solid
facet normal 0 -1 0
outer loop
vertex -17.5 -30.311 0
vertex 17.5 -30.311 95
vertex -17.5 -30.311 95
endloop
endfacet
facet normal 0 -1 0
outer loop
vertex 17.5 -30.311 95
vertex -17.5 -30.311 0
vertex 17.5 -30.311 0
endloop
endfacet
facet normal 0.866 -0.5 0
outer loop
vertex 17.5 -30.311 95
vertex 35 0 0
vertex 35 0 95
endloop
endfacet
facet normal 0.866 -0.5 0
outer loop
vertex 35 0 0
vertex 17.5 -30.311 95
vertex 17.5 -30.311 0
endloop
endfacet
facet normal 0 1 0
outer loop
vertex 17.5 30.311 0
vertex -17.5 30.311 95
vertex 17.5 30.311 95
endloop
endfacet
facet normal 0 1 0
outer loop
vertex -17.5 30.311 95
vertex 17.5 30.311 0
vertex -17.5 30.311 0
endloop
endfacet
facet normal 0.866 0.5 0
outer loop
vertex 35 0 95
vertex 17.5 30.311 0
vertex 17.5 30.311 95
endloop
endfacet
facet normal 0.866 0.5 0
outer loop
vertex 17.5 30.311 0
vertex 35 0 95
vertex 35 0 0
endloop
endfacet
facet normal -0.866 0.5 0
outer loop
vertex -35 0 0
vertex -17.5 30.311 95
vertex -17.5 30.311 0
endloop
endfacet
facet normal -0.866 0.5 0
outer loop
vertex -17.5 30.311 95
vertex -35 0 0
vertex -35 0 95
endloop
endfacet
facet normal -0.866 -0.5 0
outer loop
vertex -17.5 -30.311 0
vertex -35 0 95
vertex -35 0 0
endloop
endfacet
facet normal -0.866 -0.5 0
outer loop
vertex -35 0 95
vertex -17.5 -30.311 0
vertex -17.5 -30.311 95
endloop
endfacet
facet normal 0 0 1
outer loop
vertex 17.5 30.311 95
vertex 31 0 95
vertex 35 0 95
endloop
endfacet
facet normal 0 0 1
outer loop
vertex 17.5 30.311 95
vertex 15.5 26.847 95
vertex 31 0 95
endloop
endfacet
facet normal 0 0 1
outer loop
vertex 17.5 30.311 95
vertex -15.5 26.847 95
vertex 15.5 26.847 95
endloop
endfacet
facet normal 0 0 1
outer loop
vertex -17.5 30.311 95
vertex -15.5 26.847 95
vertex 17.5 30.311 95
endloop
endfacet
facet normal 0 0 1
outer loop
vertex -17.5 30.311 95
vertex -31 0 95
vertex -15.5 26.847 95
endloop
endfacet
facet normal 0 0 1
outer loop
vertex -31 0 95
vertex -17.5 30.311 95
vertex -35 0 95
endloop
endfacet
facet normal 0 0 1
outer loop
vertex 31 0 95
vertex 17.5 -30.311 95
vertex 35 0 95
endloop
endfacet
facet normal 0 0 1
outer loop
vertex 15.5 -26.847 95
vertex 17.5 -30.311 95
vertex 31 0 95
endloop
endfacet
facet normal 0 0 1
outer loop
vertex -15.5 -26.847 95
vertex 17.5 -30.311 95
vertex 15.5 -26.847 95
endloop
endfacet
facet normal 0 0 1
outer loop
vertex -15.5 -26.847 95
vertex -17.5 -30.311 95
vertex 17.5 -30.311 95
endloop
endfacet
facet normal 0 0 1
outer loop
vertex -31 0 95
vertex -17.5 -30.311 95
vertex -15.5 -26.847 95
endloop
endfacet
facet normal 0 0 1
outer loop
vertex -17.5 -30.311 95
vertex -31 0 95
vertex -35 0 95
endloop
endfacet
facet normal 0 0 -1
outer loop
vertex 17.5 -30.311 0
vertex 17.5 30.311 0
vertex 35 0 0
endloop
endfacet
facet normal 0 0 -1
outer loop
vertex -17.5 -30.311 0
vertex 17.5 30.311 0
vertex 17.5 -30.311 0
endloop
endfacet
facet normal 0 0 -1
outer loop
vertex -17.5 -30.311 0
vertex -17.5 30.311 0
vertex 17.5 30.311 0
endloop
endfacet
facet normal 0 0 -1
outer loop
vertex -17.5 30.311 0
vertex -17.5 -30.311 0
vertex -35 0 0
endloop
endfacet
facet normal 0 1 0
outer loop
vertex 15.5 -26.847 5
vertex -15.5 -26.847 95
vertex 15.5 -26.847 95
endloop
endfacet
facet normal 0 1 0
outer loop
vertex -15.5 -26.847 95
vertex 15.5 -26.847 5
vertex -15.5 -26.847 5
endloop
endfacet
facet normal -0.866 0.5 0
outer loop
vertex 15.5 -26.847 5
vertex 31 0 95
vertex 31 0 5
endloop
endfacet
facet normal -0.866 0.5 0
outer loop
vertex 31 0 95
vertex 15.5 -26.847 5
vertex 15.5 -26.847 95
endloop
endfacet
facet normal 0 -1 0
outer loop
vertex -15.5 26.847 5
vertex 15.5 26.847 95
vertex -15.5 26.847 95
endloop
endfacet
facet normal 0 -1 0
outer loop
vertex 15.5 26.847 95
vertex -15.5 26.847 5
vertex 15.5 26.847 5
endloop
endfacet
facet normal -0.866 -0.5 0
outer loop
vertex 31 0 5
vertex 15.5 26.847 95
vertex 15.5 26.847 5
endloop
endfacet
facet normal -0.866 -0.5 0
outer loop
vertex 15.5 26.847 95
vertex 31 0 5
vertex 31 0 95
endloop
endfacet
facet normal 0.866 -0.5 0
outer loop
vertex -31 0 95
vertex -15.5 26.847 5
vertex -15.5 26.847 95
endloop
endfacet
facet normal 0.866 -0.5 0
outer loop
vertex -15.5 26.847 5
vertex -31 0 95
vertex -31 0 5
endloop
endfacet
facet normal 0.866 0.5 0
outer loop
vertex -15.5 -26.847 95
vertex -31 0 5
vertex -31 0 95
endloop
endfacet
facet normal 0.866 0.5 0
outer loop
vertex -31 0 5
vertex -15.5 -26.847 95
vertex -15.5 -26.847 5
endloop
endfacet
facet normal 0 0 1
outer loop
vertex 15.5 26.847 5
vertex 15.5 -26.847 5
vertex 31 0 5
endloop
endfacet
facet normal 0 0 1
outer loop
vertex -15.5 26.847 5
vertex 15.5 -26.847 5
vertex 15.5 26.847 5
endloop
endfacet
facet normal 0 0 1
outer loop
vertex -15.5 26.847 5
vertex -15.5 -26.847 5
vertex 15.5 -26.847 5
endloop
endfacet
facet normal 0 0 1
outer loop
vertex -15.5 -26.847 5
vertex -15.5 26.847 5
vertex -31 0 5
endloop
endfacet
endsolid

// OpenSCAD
// ===== 例題5: 六角形のペン立て（応用）=====
// $fn=6 にすると円柱が六角柱になります。形を変える練習です。

size   = 35;   // 六角形の大きさ(半径mm)
wall   = 4;    // かべのあつさ(mm)
height = 95;   // たかさ(mm)
bottom = 5;    // 底のあつさ(mm)

difference() {
  cylinder(r = size, h = height, $fn = 6);                 // 六角柱（外）
  translate([0, 0, bottom])
    cylinder(r = size - wall, h = height, $fn = 6);        // 六角柱（内）をくり抜く
}
